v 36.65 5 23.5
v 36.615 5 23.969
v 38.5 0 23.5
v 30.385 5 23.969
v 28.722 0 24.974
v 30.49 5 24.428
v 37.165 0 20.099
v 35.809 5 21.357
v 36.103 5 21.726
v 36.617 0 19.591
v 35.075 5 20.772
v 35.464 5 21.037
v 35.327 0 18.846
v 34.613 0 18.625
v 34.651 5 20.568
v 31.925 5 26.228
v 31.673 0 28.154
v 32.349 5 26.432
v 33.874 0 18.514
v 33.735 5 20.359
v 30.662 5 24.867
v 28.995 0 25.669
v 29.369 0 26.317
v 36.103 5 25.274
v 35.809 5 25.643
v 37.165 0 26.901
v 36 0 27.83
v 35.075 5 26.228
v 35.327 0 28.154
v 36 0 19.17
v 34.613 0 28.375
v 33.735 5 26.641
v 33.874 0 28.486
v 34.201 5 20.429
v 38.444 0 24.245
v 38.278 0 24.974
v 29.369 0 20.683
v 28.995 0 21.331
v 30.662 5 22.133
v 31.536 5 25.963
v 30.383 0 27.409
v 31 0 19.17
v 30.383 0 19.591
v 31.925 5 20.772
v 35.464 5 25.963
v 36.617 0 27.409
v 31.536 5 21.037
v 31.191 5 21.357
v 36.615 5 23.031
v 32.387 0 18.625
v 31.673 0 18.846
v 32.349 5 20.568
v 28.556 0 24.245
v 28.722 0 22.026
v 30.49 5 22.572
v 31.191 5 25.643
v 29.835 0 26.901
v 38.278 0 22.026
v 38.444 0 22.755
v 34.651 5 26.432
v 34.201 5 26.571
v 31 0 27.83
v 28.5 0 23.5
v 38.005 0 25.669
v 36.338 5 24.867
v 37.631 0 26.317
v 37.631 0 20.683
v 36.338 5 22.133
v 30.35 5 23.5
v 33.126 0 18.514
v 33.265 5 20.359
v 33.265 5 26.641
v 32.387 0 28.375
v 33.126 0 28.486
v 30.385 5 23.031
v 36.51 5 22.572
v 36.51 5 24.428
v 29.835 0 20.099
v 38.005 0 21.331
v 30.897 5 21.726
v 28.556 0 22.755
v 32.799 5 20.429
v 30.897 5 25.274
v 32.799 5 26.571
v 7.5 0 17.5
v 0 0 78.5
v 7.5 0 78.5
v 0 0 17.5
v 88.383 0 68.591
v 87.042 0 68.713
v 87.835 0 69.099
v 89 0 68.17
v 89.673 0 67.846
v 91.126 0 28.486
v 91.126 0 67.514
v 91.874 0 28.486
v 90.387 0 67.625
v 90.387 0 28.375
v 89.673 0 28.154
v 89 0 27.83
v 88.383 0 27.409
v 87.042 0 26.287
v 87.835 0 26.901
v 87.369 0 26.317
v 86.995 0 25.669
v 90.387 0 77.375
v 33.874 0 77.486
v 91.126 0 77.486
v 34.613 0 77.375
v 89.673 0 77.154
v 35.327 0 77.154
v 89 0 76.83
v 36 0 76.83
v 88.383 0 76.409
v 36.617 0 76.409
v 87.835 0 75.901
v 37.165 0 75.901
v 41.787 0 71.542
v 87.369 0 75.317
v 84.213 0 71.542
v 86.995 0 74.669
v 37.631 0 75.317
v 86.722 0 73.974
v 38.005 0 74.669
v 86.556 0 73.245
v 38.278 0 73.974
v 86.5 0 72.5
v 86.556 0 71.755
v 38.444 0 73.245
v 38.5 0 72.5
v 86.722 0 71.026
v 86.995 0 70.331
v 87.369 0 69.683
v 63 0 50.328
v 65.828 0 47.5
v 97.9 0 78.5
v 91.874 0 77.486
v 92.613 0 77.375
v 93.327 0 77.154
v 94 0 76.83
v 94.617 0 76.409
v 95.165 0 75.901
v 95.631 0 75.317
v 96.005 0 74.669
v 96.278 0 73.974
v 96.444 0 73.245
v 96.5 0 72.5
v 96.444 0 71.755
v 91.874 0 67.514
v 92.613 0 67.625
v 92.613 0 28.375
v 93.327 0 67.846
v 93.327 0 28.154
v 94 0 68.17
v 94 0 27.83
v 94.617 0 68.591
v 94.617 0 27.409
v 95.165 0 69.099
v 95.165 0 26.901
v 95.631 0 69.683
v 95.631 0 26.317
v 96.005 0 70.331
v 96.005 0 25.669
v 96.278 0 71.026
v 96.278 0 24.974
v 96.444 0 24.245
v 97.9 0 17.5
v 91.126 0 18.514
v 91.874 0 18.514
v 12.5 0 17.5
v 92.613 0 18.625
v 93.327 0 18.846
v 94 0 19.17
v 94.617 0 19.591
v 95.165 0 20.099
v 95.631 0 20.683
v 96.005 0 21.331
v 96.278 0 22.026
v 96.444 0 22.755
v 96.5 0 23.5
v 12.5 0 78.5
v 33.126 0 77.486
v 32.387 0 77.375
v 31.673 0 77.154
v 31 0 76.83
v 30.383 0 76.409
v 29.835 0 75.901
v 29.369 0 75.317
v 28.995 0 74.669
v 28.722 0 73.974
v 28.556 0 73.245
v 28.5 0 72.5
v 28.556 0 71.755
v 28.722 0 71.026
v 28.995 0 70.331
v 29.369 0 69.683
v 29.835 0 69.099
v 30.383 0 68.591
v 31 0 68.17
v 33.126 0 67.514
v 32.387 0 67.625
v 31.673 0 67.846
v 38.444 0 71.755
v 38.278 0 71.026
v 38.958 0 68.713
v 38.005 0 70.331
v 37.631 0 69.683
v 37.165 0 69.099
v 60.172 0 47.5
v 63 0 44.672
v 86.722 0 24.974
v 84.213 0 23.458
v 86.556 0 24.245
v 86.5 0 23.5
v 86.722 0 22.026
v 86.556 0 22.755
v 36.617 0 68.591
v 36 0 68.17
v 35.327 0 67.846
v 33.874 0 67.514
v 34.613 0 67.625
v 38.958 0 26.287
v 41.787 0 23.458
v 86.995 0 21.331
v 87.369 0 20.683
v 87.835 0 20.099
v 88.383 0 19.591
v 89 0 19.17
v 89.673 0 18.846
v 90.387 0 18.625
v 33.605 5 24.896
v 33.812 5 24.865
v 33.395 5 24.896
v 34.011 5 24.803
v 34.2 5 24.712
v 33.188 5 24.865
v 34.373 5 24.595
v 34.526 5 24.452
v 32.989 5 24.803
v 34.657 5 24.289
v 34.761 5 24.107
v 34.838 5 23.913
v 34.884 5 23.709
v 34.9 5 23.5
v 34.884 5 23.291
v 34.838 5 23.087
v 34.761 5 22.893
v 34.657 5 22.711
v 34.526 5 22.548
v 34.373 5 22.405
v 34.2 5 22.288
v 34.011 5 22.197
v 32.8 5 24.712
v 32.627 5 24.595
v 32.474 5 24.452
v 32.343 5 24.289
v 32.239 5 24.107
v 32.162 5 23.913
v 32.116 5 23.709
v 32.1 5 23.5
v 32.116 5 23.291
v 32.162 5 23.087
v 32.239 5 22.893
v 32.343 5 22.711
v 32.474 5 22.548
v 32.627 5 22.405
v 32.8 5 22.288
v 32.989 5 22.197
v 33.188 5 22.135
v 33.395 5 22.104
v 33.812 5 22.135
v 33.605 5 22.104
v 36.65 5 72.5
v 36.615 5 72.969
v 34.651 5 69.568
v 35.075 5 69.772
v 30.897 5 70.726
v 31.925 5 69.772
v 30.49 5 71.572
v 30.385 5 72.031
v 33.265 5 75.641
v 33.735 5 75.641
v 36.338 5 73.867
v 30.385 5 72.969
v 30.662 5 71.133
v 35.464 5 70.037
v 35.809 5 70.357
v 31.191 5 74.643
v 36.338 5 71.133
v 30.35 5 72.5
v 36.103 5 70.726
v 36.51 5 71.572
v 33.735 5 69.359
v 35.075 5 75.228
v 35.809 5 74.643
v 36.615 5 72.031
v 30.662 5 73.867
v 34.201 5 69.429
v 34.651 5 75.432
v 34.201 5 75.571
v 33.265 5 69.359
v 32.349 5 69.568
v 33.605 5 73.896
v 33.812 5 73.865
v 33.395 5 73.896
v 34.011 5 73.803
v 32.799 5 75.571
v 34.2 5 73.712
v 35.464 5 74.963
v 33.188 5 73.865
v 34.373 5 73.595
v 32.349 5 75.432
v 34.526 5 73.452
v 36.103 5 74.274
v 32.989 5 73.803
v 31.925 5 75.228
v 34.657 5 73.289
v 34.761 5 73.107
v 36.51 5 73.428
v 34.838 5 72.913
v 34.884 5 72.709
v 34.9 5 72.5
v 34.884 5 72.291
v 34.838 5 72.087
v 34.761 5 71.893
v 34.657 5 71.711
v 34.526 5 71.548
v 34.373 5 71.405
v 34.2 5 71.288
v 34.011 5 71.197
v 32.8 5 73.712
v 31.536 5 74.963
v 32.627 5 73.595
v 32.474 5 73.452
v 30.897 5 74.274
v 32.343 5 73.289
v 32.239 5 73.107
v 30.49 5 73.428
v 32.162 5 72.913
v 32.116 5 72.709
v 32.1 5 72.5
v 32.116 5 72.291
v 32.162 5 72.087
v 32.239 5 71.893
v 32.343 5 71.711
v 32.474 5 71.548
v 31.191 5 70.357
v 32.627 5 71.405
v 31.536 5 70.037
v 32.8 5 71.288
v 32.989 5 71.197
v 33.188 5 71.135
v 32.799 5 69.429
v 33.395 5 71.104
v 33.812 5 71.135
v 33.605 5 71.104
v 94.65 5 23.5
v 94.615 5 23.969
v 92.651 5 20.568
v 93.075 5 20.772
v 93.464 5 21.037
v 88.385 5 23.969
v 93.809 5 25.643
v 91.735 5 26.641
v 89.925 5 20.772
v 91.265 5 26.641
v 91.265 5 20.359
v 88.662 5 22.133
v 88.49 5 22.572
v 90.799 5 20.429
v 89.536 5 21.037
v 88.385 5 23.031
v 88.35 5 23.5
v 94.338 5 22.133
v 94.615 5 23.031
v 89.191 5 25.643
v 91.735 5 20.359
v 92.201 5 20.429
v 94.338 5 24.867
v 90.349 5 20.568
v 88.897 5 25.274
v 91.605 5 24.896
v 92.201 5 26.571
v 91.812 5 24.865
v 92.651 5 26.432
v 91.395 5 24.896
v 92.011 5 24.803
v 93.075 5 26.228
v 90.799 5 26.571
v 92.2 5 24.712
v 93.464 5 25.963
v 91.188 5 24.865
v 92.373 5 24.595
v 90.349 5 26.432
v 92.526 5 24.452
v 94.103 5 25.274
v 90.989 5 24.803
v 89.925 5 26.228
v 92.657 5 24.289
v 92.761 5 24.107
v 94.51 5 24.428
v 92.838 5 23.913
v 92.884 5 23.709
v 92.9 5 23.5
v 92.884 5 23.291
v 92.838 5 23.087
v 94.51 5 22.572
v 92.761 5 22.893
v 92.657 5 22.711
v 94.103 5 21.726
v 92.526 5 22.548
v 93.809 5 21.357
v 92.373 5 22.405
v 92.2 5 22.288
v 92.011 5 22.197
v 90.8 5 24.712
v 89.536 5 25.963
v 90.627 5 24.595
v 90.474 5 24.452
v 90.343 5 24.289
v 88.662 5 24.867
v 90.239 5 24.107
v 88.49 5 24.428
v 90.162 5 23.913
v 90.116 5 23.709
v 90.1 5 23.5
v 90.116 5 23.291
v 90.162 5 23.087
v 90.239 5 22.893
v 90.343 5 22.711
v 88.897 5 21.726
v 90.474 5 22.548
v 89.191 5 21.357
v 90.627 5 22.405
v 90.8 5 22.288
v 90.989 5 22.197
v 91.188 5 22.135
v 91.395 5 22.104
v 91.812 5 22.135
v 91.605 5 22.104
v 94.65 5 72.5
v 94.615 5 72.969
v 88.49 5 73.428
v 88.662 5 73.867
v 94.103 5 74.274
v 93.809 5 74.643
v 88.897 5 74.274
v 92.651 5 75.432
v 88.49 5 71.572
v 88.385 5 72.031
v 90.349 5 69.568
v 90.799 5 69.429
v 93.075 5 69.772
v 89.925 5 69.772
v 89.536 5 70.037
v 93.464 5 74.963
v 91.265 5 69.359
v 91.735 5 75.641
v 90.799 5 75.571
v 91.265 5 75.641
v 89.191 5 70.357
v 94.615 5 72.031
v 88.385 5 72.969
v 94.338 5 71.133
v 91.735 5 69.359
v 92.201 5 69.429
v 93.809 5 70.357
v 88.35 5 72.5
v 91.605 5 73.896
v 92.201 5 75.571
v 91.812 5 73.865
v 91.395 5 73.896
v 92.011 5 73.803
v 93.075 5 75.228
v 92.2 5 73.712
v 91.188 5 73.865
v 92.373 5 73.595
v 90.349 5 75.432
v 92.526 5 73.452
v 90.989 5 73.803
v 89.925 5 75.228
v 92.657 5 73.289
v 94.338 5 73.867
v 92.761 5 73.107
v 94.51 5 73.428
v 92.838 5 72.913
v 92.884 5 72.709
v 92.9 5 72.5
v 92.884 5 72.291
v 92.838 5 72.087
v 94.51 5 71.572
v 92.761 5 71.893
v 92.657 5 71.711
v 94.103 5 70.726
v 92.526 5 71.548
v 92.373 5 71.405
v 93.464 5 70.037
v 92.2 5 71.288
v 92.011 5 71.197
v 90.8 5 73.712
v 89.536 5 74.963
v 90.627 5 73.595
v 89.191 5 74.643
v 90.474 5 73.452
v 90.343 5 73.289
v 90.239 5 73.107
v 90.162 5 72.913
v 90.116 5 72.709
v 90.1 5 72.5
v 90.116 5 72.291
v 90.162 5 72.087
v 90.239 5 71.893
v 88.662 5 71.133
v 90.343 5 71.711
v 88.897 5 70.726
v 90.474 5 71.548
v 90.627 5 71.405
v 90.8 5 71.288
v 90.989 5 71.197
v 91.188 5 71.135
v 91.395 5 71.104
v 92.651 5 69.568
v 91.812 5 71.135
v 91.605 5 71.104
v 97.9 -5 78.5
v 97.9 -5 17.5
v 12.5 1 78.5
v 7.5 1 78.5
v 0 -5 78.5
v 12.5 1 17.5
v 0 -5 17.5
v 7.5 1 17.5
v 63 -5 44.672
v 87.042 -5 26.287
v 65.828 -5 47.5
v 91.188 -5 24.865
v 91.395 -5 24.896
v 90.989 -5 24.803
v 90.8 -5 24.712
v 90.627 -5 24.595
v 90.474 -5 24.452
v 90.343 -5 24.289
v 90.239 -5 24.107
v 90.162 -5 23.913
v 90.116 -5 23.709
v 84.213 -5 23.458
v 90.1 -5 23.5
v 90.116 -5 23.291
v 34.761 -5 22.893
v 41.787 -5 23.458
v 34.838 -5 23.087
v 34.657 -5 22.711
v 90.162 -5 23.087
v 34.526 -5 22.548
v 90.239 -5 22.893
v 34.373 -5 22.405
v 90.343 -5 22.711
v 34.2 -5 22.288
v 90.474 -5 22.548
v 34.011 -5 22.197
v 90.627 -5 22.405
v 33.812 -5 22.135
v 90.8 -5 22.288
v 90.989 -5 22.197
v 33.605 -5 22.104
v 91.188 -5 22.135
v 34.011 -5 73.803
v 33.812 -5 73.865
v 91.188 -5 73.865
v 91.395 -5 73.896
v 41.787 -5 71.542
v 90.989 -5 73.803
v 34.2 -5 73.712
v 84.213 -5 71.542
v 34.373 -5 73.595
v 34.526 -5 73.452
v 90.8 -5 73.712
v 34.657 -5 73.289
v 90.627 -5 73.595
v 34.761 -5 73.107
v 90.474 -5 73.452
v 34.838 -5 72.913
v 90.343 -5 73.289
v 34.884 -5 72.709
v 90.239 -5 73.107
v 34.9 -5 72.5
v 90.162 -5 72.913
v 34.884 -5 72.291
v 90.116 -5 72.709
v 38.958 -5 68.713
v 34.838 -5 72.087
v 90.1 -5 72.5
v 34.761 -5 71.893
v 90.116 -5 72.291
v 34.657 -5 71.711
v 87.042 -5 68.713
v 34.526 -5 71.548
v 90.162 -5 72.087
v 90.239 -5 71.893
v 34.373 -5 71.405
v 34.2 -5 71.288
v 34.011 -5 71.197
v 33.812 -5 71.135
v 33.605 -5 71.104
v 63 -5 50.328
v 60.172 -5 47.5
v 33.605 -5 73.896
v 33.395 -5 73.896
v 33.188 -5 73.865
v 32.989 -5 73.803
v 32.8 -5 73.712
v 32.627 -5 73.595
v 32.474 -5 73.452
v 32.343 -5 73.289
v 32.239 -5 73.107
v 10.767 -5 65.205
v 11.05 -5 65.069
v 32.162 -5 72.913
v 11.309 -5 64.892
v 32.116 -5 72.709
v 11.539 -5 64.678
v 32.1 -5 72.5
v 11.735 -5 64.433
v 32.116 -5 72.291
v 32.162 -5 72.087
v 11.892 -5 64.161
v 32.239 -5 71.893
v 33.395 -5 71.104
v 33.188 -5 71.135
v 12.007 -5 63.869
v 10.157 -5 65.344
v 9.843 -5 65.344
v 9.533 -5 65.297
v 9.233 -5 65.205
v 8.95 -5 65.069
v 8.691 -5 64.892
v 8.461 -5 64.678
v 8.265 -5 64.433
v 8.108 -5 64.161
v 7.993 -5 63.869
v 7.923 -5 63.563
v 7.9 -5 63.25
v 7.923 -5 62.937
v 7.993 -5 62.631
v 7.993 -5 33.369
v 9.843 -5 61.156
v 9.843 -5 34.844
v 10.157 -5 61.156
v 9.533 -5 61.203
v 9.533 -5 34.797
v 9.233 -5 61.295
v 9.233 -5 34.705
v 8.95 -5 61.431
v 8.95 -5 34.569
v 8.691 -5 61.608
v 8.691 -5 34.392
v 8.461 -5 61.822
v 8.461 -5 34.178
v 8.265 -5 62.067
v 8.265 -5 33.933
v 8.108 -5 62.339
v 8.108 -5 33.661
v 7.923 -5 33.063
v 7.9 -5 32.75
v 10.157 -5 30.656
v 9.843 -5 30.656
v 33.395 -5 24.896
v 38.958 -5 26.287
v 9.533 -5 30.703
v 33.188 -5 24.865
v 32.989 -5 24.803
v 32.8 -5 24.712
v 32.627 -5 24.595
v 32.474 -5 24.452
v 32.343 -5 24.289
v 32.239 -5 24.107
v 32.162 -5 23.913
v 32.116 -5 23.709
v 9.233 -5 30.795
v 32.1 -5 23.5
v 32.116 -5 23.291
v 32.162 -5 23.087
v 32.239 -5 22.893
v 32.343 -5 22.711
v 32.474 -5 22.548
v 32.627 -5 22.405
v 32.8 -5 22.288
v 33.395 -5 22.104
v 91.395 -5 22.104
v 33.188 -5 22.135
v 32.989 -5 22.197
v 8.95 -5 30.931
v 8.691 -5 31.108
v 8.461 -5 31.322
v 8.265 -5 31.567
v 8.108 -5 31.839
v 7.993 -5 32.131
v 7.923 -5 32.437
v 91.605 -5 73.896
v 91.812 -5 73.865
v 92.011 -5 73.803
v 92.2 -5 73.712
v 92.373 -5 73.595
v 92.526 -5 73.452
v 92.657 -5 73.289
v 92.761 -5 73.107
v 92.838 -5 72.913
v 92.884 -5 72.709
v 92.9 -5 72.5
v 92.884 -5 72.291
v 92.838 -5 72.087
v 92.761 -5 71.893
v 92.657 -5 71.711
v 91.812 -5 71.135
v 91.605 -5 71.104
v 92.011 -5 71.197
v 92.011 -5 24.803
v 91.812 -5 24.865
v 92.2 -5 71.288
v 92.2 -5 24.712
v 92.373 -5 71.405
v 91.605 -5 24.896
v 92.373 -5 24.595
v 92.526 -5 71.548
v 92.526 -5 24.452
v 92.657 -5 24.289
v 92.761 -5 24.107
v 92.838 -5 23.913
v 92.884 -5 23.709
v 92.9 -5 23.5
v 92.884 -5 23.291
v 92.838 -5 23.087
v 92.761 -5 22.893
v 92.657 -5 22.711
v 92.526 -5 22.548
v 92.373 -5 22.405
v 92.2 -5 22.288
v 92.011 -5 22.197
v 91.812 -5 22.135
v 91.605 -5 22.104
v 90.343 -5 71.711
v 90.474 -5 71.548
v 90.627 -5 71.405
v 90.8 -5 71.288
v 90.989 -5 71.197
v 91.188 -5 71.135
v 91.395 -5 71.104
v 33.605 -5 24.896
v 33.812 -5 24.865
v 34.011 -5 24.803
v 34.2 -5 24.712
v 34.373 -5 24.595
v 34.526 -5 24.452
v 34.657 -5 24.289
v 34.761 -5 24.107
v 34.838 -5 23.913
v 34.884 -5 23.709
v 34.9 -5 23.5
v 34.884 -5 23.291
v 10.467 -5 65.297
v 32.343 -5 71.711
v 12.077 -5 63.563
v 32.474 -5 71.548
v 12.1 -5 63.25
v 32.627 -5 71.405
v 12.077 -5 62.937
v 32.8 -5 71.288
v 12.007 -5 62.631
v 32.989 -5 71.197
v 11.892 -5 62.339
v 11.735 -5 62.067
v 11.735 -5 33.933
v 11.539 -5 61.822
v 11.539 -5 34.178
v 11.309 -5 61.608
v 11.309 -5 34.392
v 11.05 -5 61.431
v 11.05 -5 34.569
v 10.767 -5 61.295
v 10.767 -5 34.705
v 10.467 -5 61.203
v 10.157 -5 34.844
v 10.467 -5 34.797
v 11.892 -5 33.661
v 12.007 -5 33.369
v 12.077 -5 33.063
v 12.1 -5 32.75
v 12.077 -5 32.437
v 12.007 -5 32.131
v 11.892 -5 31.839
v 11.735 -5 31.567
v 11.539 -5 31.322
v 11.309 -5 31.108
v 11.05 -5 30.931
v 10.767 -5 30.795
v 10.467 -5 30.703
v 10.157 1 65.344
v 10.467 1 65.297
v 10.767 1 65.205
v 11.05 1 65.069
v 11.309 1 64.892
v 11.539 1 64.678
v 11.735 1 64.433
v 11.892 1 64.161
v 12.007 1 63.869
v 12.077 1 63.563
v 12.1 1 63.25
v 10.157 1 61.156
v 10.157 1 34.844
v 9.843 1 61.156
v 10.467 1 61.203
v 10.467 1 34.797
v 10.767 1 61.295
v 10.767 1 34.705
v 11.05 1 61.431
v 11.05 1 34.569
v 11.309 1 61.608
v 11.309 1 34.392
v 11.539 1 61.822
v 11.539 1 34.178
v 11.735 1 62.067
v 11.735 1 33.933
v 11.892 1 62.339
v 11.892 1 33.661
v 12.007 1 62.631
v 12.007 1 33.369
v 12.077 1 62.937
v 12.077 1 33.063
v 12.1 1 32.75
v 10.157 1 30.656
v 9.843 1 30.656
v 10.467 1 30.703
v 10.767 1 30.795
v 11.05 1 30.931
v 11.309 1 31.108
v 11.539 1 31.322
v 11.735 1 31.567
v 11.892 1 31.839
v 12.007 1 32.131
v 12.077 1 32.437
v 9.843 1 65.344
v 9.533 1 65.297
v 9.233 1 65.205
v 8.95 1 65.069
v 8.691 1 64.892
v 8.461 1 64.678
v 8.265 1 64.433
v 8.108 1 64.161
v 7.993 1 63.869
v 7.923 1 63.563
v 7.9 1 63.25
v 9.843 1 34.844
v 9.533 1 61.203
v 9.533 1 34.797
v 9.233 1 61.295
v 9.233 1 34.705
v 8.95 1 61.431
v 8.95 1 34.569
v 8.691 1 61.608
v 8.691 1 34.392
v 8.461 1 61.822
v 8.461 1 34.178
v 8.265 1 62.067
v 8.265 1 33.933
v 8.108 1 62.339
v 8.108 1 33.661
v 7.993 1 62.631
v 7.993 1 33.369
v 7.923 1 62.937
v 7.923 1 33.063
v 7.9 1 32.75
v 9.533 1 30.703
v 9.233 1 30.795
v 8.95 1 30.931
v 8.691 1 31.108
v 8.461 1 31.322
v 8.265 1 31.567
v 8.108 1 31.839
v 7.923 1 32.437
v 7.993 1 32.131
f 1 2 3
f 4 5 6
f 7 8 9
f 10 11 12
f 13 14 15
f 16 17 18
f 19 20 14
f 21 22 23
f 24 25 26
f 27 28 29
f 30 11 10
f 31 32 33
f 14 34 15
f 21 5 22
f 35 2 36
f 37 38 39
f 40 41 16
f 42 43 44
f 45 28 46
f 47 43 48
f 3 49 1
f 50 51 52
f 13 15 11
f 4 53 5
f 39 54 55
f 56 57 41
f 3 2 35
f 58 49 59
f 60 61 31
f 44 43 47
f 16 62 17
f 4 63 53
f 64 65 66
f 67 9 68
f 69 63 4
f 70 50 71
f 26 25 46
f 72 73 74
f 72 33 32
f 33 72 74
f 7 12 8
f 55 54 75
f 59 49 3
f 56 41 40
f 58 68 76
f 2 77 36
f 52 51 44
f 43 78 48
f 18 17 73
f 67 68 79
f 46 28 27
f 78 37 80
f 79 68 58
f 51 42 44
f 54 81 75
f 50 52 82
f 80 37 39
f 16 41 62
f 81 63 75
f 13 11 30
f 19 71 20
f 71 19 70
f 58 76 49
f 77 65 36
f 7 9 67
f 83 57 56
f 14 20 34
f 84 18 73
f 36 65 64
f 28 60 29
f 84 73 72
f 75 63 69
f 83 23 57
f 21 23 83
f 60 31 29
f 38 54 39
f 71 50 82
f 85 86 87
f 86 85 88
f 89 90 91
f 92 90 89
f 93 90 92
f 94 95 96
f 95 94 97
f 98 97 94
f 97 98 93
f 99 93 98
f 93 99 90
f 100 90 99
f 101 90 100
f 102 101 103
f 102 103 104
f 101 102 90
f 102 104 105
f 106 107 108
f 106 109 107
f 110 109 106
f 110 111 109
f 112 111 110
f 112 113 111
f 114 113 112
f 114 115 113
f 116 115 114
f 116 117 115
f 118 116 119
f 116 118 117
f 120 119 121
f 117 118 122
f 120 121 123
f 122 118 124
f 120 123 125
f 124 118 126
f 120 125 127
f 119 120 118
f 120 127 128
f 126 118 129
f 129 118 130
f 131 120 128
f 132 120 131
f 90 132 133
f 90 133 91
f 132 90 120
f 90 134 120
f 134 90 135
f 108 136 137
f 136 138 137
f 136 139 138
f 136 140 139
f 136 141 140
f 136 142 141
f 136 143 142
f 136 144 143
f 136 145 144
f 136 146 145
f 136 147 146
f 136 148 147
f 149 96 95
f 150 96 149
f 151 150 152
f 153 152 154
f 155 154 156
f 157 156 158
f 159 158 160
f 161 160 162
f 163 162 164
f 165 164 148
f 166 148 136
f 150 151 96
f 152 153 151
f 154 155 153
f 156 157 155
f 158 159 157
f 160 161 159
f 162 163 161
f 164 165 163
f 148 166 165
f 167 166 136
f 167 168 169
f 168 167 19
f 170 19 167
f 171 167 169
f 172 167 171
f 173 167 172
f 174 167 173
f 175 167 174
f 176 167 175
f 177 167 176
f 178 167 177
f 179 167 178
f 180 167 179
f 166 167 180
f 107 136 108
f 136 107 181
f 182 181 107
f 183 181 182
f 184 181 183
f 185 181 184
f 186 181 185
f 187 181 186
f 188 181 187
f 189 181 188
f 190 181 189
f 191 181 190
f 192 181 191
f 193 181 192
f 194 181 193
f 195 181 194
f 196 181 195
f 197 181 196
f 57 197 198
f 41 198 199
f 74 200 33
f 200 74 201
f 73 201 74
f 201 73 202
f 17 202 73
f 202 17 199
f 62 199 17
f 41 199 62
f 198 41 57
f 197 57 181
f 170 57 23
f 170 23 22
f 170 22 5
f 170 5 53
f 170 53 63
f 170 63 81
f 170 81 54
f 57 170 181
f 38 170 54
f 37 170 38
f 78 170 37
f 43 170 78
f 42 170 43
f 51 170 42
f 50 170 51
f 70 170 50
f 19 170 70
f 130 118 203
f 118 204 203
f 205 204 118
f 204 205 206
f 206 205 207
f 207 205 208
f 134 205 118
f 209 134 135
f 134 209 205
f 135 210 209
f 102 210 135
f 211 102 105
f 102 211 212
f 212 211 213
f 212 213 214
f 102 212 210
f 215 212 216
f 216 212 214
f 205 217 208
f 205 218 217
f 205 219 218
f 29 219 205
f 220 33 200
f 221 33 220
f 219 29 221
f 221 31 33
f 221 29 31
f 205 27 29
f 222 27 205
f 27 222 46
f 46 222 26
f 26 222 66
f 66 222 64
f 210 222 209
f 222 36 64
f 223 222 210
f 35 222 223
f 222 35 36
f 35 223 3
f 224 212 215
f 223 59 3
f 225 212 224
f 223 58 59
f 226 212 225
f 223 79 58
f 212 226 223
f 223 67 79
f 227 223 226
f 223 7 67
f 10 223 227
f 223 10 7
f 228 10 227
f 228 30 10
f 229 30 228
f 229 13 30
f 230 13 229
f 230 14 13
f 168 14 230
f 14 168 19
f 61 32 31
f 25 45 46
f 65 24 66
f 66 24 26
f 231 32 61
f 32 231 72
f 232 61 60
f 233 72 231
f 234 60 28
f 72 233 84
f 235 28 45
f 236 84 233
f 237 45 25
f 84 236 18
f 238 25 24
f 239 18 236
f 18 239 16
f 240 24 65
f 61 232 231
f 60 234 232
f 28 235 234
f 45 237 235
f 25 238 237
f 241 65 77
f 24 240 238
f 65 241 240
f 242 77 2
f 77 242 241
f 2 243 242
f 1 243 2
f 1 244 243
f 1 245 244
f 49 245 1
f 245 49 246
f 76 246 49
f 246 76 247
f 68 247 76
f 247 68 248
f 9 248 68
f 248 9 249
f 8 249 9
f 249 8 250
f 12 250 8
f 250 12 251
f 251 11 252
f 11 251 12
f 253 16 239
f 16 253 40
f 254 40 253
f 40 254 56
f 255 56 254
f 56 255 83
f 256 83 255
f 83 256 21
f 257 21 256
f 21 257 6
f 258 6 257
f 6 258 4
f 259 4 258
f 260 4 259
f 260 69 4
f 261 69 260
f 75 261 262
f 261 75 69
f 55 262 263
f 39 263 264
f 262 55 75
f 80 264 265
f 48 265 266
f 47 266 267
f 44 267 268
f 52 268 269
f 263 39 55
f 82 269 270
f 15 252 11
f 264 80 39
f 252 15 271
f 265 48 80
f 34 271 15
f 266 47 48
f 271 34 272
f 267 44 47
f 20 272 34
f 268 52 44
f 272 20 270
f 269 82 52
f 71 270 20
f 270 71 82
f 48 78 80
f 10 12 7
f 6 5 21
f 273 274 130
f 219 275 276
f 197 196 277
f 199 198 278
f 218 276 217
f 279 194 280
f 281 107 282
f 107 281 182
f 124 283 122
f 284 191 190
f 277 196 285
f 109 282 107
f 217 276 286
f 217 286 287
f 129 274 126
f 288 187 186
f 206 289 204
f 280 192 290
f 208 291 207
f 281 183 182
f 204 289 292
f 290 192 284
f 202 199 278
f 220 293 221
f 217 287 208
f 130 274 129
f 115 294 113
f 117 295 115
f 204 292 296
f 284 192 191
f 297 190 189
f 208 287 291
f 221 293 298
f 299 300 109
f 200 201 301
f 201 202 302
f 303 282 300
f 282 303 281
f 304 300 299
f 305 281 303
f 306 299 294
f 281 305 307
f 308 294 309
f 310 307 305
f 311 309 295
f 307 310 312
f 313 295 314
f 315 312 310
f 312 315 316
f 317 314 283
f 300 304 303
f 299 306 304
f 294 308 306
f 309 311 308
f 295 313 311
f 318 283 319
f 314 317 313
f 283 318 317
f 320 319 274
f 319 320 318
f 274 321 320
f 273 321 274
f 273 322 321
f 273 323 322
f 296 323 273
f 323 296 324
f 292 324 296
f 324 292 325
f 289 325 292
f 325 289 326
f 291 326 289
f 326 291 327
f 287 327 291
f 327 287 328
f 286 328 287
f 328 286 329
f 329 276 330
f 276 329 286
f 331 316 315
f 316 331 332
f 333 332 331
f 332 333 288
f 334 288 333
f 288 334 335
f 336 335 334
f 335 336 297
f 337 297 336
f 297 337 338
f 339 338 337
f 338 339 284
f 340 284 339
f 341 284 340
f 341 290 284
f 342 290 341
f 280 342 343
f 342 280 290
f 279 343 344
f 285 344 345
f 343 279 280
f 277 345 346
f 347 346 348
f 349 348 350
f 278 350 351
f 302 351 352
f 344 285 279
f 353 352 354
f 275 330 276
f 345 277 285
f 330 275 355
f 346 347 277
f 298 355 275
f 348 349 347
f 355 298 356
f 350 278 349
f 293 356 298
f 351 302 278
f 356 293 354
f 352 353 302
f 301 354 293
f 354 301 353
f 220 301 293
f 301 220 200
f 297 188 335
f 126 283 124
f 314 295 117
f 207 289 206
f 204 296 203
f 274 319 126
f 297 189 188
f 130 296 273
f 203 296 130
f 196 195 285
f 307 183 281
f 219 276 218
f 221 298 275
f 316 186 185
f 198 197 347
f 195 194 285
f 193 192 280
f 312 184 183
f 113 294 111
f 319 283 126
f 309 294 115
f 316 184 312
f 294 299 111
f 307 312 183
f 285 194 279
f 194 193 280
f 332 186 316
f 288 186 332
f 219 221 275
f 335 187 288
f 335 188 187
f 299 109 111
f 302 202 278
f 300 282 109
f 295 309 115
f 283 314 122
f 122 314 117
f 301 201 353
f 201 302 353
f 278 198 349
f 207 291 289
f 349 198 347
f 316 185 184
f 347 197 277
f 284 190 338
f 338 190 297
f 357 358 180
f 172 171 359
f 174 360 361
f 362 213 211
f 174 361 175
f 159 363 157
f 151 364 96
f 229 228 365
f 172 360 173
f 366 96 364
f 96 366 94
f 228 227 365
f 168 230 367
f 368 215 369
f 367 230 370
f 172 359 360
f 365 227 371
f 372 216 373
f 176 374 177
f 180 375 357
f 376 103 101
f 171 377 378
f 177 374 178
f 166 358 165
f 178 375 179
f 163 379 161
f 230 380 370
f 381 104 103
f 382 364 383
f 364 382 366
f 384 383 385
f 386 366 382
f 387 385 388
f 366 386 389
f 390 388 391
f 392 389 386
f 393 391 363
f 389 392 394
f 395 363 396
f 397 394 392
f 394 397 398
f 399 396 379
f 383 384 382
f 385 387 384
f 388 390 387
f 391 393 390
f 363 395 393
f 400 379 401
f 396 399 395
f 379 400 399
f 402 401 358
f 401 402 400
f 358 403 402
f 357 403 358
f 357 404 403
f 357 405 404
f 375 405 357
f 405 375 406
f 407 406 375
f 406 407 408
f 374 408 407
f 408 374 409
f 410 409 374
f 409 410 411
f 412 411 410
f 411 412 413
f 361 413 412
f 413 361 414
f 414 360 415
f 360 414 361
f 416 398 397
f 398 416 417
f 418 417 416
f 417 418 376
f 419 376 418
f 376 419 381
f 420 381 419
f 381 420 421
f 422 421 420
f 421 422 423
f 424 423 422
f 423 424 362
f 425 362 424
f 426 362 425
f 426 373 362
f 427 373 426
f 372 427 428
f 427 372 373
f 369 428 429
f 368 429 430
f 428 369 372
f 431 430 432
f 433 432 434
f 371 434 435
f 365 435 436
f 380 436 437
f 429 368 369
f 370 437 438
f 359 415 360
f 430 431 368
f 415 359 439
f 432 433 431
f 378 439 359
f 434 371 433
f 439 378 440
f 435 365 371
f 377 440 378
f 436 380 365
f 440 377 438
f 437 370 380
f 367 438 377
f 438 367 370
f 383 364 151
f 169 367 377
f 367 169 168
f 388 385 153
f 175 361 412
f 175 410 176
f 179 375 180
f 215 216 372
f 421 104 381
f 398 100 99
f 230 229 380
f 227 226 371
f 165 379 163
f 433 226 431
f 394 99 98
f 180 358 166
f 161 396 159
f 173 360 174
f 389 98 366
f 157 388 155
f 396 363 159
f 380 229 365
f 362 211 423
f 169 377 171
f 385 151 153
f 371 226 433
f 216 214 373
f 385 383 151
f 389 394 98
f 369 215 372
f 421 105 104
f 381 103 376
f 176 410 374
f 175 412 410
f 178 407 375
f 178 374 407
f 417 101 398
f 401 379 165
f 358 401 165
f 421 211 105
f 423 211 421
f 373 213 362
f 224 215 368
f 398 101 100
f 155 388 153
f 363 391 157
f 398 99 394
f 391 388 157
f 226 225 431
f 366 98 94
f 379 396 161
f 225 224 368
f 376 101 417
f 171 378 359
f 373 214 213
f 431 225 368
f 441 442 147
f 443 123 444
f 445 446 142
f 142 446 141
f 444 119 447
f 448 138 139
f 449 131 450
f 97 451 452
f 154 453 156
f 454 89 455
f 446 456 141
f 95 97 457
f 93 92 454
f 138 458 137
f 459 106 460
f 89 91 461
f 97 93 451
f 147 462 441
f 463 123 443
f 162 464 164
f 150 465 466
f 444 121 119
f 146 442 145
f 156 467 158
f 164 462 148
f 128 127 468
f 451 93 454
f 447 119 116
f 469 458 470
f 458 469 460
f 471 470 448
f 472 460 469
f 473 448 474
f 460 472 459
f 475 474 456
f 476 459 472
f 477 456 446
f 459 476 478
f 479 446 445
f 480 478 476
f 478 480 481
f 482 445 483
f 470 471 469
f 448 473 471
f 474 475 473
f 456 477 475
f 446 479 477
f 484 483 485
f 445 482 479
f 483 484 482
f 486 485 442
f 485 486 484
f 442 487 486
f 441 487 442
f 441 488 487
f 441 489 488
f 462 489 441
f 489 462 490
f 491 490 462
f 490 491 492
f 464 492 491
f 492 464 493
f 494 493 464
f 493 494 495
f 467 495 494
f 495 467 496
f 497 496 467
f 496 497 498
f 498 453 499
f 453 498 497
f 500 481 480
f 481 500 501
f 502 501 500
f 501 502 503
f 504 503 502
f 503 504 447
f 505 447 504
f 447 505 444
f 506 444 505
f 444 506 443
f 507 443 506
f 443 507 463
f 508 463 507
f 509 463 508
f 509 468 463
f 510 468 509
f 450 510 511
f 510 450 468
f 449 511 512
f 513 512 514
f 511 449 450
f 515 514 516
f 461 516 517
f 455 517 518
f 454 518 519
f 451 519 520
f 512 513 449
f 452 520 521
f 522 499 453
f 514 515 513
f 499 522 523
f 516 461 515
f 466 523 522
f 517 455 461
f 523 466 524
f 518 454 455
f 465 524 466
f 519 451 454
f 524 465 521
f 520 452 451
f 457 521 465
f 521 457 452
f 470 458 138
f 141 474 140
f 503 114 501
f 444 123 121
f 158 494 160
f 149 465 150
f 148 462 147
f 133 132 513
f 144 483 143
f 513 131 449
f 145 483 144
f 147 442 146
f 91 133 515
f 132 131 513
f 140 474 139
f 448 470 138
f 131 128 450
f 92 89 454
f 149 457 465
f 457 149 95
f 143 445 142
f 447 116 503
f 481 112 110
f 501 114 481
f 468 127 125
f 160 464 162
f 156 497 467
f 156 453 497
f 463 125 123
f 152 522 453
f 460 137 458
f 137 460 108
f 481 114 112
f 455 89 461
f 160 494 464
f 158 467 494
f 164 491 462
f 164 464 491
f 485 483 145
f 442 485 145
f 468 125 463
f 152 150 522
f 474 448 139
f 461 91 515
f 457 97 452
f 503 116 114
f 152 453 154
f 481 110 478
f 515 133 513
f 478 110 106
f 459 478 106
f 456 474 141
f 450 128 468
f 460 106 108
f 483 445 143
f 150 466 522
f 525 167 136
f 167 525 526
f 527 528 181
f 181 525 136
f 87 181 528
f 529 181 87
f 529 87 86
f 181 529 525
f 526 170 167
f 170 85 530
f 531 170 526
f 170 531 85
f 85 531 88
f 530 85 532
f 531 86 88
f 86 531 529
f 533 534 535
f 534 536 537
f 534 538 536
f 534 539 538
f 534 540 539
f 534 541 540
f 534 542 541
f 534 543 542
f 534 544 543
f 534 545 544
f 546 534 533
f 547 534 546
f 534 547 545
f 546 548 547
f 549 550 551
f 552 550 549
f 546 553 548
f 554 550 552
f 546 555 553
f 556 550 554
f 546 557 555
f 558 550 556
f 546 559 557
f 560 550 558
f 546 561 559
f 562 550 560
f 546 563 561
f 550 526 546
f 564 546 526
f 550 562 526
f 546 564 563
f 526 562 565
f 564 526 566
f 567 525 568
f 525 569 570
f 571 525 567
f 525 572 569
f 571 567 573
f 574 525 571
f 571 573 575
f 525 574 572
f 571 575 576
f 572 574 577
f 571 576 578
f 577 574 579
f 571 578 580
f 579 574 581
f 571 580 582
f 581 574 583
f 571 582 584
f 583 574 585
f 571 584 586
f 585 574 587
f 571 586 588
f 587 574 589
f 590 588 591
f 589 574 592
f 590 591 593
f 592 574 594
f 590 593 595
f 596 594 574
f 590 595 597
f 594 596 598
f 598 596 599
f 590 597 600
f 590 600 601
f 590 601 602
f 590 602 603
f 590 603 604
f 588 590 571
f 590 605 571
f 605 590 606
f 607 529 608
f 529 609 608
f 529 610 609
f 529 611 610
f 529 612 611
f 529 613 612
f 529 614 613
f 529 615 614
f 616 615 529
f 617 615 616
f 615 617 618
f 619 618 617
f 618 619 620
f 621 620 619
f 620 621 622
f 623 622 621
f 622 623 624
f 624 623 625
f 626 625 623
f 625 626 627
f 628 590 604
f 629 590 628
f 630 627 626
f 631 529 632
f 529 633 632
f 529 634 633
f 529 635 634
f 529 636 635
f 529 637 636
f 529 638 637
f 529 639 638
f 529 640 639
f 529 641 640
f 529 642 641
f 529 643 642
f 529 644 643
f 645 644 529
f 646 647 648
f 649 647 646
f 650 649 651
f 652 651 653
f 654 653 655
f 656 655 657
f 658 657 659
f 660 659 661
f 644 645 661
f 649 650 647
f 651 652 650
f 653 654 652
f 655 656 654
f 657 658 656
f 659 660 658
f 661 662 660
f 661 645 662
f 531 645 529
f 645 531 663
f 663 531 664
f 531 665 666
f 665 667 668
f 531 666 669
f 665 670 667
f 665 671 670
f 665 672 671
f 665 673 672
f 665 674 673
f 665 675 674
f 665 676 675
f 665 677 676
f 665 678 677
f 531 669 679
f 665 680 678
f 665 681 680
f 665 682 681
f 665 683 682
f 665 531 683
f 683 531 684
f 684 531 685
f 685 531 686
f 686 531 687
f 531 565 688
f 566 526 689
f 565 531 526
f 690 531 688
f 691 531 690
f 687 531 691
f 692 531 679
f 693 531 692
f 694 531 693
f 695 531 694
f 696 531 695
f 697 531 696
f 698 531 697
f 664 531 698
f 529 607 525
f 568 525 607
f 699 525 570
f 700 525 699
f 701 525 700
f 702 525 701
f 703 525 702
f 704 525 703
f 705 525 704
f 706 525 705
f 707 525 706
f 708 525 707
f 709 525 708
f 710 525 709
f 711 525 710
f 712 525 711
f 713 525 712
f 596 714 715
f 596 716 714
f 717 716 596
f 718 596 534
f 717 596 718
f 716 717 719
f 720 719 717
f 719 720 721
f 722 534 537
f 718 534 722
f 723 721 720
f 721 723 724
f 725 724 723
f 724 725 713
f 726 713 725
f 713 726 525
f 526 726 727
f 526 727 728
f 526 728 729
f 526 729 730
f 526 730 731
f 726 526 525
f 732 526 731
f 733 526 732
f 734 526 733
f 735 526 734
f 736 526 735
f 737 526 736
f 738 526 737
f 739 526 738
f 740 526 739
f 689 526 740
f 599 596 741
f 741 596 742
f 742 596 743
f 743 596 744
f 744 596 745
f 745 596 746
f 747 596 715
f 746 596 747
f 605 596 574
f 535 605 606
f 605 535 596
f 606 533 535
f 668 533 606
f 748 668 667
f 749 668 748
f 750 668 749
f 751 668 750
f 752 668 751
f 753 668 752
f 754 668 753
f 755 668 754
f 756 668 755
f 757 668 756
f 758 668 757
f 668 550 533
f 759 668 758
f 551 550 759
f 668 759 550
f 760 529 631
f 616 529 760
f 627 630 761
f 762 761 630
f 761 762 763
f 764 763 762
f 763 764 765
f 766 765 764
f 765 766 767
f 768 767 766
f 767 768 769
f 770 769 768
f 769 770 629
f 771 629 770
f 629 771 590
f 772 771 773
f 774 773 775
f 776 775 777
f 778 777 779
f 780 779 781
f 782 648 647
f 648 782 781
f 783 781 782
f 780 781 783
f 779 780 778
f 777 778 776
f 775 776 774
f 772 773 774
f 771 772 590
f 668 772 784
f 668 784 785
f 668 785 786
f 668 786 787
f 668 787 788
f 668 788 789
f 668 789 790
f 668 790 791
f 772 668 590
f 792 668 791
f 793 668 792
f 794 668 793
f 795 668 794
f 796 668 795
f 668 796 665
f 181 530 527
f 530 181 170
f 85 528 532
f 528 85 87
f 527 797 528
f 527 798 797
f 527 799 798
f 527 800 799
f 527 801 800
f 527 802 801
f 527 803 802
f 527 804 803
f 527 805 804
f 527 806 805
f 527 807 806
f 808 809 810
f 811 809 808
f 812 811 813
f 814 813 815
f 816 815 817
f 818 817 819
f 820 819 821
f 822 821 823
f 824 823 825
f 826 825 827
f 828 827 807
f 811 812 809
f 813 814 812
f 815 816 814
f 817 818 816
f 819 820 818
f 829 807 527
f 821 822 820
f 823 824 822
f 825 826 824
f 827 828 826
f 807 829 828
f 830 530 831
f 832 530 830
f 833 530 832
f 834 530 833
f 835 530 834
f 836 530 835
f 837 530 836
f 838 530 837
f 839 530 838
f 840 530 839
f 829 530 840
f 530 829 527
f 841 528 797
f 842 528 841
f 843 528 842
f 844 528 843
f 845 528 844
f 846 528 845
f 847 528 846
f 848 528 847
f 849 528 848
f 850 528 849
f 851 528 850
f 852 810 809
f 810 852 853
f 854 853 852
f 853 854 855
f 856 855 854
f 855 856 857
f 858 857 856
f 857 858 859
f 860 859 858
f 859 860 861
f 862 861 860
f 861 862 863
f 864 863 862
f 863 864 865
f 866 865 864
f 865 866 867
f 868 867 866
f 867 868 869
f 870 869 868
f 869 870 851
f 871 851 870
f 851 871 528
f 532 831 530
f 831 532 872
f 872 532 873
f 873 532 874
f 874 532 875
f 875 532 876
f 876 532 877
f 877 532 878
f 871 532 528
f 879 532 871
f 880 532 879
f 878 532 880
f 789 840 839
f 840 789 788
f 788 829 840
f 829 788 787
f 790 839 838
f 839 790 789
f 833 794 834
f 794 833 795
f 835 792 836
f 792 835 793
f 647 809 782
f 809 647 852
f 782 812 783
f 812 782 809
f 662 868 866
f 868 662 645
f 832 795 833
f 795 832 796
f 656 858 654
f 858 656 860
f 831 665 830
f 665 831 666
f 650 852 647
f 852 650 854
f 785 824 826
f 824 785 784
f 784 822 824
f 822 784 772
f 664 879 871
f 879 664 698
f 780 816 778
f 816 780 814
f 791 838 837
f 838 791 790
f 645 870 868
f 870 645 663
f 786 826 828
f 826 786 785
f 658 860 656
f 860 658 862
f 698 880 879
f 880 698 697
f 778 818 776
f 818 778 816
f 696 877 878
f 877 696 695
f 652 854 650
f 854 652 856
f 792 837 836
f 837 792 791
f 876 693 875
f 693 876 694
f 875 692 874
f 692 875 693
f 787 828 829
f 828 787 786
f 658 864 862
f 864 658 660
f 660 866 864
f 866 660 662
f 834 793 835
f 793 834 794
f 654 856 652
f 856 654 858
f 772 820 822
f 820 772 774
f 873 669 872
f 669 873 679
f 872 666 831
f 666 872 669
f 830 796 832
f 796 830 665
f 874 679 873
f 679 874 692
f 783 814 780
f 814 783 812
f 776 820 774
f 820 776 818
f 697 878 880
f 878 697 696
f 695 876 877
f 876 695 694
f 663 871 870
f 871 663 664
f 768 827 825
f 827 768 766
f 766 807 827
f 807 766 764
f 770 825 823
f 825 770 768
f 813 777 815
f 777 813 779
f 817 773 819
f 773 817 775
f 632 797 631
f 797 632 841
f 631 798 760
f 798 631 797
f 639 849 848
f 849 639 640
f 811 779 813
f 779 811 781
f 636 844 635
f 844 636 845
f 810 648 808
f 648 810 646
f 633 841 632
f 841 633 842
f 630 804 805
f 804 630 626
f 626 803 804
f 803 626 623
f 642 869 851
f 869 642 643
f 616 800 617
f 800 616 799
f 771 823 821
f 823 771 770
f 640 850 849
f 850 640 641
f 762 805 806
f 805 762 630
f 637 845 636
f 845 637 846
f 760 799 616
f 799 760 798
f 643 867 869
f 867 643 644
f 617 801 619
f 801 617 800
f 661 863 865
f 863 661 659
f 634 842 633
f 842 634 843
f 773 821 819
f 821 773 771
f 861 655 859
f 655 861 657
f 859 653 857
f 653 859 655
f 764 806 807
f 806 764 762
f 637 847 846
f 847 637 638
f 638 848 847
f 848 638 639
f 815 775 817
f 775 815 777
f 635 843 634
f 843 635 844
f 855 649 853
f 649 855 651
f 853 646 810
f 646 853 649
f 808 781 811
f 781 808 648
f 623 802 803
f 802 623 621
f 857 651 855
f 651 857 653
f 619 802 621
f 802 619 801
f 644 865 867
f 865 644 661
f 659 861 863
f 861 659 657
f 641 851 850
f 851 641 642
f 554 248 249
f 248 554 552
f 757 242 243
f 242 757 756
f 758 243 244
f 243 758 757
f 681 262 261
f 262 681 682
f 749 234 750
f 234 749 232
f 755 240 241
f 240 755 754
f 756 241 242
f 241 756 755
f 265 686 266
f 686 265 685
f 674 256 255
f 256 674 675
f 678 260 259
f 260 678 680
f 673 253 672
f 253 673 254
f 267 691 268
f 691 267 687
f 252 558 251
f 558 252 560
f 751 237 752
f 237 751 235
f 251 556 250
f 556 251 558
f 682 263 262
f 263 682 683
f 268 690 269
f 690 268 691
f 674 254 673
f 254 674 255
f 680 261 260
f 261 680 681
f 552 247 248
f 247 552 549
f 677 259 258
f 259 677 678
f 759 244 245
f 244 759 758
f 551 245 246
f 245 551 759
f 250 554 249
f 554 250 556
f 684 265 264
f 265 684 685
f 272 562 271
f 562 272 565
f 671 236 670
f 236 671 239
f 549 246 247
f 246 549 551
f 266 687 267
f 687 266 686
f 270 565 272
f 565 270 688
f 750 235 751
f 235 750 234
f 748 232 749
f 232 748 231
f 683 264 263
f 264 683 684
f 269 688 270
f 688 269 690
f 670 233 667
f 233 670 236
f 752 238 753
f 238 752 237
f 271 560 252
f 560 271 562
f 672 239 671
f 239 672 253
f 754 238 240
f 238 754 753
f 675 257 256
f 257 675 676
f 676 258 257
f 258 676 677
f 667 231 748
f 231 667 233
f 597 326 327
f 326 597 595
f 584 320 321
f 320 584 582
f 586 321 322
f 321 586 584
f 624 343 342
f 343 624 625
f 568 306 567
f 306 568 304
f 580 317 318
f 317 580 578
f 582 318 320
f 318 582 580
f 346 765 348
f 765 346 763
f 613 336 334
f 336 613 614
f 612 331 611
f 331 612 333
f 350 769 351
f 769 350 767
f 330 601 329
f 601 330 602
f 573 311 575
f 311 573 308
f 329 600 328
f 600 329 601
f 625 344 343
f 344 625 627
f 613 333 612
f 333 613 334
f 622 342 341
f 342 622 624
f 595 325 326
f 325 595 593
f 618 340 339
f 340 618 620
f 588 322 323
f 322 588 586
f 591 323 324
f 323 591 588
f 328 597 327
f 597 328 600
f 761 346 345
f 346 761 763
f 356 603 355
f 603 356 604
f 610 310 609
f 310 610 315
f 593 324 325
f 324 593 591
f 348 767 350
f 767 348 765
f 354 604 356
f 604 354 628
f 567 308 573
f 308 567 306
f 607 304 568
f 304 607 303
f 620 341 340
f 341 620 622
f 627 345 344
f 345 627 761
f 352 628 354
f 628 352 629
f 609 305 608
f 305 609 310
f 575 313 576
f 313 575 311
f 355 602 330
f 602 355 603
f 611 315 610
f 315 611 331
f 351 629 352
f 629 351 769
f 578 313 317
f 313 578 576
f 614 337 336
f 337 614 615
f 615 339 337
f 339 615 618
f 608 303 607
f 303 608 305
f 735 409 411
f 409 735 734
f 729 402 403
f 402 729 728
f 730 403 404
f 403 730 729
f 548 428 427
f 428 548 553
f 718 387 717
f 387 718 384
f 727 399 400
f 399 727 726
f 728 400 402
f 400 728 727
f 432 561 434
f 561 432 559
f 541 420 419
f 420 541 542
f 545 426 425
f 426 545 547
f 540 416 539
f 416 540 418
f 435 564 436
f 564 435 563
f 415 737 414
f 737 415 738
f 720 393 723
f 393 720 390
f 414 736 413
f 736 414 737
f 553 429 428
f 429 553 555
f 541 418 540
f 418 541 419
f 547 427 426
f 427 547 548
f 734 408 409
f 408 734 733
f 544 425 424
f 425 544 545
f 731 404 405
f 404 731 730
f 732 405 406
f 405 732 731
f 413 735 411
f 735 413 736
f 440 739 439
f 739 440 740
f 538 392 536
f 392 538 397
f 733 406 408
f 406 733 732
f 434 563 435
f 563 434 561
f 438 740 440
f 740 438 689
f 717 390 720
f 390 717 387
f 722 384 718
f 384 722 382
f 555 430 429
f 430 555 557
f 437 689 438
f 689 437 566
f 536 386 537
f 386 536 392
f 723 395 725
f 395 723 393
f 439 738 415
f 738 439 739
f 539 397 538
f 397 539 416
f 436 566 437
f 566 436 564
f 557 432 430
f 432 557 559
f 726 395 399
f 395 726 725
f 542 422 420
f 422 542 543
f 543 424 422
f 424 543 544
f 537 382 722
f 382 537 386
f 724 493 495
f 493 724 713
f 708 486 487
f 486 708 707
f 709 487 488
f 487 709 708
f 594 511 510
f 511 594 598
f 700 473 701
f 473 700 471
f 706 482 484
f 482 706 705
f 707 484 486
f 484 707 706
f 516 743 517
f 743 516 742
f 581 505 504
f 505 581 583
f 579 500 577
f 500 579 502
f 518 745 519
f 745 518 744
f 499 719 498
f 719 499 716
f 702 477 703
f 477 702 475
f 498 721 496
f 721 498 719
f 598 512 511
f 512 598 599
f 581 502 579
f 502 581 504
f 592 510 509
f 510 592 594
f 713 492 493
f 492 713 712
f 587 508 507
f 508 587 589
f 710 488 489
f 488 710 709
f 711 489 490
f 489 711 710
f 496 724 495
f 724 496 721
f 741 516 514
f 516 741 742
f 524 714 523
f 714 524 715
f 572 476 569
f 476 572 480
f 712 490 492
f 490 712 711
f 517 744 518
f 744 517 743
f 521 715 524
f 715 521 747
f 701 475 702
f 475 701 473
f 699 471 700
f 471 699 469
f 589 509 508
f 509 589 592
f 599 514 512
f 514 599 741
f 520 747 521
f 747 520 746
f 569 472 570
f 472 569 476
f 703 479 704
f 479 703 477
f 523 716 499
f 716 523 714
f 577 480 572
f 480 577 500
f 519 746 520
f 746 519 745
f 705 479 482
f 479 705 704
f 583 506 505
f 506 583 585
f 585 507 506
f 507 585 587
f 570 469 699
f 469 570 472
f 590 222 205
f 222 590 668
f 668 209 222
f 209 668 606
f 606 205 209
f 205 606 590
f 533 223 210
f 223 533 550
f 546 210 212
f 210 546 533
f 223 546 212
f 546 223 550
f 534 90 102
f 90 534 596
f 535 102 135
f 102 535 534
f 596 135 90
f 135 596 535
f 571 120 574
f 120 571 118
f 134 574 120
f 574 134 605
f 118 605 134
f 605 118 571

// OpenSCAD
pi_width = 85;
pi_height = 56;
pi_hole_dist_x = 58;
pi_hole_dist_y = 49;
pi_hole_off_x = 3.5;
pi_hole_off_y = 3.5;
pi_hole = 2.8;

wall = 5.0;
pi_wall_dist = 10;
pi_mount_dist = 5.0;
pi_mount_post_top = 6.3;
pi_mount_post_bot = 10.0;
mount_dia = 4.2;

mount_width = pi_hole_dist_x + pi_wall_dist + 20 + pi_hole_off_x + pi_hole / 2 + wall;
mount_height = pi_height + 5;

$fn = 42;

module prism(l, w, h) {
    polyhedron(
        points = [[0,0,0], [l,0,0], [l,w,0], [0,w,0], [0,w,h], [l,w,h]],
        faces = [[0,1,2,3],[5,4,3,2],[0,4,5,1],[0,3,4],[5,2,1]]
    );
}

module cutout(l, o) {
    for (r = [0, 90, 180, 270])
    rotate([r + 45, 0, -90])
    translate([0, -l - o, o])
    prism(wall + 2, l, l);
}

module holes(h, d1 = pi_hole, d2 = pi_hole) {
    for (x = [0, pi_hole_dist_x])
    for (y = [0, pi_hole_dist_y])
    translate([pi_hole_off_x + x, 0, pi_hole_off_y + y])
    rotate([90, 0, 0])
    cylinder(d1 = d1, d2 = d2, h = h);
}

module pi() {
    cube([pi_width, 2.0, pi_height]);
    
    translate([0, 10, 0])
    holes(20);
}

module mount() {
    difference() {
        union() {
            cube([mount_width, wall, mount_height]);
            
            translate([7.5, wall, 0])
            cube([5, 1, mount_height]);
            
            translate([20 + pi_wall_dist, pi_mount_dist + wall, (mount_height - pi_height) / 2])
            holes(pi_mount_dist, pi_mount_post_top, pi_mount_post_bot);
        }
        
        for (z = [mount_height / 4, mount_height / 4 * 3])
        translate([10, -1, z])
        rotate([-90, 0, 0])
        cylinder(d = mount_dia, h = wall + 3);
        
        translate([20 + pi_wall_dist, wall + pi_mount_dist + 1, (mount_height - pi_height) / 2])
        holes(wall + pi_mount_dist + 2);
        
        translate([63, wall + 1, 30])
        cutout(30, 2);
    }
}

module assembly() {
    %cube([20, 40, 100]);
    
    %translate([20 + pi_wall_dist, pi_mount_dist, 20])
    pi();
    
    translate([0, -wall, 20 - (mount_height - pi_height) / 2])
    mount();
}

assembly();
